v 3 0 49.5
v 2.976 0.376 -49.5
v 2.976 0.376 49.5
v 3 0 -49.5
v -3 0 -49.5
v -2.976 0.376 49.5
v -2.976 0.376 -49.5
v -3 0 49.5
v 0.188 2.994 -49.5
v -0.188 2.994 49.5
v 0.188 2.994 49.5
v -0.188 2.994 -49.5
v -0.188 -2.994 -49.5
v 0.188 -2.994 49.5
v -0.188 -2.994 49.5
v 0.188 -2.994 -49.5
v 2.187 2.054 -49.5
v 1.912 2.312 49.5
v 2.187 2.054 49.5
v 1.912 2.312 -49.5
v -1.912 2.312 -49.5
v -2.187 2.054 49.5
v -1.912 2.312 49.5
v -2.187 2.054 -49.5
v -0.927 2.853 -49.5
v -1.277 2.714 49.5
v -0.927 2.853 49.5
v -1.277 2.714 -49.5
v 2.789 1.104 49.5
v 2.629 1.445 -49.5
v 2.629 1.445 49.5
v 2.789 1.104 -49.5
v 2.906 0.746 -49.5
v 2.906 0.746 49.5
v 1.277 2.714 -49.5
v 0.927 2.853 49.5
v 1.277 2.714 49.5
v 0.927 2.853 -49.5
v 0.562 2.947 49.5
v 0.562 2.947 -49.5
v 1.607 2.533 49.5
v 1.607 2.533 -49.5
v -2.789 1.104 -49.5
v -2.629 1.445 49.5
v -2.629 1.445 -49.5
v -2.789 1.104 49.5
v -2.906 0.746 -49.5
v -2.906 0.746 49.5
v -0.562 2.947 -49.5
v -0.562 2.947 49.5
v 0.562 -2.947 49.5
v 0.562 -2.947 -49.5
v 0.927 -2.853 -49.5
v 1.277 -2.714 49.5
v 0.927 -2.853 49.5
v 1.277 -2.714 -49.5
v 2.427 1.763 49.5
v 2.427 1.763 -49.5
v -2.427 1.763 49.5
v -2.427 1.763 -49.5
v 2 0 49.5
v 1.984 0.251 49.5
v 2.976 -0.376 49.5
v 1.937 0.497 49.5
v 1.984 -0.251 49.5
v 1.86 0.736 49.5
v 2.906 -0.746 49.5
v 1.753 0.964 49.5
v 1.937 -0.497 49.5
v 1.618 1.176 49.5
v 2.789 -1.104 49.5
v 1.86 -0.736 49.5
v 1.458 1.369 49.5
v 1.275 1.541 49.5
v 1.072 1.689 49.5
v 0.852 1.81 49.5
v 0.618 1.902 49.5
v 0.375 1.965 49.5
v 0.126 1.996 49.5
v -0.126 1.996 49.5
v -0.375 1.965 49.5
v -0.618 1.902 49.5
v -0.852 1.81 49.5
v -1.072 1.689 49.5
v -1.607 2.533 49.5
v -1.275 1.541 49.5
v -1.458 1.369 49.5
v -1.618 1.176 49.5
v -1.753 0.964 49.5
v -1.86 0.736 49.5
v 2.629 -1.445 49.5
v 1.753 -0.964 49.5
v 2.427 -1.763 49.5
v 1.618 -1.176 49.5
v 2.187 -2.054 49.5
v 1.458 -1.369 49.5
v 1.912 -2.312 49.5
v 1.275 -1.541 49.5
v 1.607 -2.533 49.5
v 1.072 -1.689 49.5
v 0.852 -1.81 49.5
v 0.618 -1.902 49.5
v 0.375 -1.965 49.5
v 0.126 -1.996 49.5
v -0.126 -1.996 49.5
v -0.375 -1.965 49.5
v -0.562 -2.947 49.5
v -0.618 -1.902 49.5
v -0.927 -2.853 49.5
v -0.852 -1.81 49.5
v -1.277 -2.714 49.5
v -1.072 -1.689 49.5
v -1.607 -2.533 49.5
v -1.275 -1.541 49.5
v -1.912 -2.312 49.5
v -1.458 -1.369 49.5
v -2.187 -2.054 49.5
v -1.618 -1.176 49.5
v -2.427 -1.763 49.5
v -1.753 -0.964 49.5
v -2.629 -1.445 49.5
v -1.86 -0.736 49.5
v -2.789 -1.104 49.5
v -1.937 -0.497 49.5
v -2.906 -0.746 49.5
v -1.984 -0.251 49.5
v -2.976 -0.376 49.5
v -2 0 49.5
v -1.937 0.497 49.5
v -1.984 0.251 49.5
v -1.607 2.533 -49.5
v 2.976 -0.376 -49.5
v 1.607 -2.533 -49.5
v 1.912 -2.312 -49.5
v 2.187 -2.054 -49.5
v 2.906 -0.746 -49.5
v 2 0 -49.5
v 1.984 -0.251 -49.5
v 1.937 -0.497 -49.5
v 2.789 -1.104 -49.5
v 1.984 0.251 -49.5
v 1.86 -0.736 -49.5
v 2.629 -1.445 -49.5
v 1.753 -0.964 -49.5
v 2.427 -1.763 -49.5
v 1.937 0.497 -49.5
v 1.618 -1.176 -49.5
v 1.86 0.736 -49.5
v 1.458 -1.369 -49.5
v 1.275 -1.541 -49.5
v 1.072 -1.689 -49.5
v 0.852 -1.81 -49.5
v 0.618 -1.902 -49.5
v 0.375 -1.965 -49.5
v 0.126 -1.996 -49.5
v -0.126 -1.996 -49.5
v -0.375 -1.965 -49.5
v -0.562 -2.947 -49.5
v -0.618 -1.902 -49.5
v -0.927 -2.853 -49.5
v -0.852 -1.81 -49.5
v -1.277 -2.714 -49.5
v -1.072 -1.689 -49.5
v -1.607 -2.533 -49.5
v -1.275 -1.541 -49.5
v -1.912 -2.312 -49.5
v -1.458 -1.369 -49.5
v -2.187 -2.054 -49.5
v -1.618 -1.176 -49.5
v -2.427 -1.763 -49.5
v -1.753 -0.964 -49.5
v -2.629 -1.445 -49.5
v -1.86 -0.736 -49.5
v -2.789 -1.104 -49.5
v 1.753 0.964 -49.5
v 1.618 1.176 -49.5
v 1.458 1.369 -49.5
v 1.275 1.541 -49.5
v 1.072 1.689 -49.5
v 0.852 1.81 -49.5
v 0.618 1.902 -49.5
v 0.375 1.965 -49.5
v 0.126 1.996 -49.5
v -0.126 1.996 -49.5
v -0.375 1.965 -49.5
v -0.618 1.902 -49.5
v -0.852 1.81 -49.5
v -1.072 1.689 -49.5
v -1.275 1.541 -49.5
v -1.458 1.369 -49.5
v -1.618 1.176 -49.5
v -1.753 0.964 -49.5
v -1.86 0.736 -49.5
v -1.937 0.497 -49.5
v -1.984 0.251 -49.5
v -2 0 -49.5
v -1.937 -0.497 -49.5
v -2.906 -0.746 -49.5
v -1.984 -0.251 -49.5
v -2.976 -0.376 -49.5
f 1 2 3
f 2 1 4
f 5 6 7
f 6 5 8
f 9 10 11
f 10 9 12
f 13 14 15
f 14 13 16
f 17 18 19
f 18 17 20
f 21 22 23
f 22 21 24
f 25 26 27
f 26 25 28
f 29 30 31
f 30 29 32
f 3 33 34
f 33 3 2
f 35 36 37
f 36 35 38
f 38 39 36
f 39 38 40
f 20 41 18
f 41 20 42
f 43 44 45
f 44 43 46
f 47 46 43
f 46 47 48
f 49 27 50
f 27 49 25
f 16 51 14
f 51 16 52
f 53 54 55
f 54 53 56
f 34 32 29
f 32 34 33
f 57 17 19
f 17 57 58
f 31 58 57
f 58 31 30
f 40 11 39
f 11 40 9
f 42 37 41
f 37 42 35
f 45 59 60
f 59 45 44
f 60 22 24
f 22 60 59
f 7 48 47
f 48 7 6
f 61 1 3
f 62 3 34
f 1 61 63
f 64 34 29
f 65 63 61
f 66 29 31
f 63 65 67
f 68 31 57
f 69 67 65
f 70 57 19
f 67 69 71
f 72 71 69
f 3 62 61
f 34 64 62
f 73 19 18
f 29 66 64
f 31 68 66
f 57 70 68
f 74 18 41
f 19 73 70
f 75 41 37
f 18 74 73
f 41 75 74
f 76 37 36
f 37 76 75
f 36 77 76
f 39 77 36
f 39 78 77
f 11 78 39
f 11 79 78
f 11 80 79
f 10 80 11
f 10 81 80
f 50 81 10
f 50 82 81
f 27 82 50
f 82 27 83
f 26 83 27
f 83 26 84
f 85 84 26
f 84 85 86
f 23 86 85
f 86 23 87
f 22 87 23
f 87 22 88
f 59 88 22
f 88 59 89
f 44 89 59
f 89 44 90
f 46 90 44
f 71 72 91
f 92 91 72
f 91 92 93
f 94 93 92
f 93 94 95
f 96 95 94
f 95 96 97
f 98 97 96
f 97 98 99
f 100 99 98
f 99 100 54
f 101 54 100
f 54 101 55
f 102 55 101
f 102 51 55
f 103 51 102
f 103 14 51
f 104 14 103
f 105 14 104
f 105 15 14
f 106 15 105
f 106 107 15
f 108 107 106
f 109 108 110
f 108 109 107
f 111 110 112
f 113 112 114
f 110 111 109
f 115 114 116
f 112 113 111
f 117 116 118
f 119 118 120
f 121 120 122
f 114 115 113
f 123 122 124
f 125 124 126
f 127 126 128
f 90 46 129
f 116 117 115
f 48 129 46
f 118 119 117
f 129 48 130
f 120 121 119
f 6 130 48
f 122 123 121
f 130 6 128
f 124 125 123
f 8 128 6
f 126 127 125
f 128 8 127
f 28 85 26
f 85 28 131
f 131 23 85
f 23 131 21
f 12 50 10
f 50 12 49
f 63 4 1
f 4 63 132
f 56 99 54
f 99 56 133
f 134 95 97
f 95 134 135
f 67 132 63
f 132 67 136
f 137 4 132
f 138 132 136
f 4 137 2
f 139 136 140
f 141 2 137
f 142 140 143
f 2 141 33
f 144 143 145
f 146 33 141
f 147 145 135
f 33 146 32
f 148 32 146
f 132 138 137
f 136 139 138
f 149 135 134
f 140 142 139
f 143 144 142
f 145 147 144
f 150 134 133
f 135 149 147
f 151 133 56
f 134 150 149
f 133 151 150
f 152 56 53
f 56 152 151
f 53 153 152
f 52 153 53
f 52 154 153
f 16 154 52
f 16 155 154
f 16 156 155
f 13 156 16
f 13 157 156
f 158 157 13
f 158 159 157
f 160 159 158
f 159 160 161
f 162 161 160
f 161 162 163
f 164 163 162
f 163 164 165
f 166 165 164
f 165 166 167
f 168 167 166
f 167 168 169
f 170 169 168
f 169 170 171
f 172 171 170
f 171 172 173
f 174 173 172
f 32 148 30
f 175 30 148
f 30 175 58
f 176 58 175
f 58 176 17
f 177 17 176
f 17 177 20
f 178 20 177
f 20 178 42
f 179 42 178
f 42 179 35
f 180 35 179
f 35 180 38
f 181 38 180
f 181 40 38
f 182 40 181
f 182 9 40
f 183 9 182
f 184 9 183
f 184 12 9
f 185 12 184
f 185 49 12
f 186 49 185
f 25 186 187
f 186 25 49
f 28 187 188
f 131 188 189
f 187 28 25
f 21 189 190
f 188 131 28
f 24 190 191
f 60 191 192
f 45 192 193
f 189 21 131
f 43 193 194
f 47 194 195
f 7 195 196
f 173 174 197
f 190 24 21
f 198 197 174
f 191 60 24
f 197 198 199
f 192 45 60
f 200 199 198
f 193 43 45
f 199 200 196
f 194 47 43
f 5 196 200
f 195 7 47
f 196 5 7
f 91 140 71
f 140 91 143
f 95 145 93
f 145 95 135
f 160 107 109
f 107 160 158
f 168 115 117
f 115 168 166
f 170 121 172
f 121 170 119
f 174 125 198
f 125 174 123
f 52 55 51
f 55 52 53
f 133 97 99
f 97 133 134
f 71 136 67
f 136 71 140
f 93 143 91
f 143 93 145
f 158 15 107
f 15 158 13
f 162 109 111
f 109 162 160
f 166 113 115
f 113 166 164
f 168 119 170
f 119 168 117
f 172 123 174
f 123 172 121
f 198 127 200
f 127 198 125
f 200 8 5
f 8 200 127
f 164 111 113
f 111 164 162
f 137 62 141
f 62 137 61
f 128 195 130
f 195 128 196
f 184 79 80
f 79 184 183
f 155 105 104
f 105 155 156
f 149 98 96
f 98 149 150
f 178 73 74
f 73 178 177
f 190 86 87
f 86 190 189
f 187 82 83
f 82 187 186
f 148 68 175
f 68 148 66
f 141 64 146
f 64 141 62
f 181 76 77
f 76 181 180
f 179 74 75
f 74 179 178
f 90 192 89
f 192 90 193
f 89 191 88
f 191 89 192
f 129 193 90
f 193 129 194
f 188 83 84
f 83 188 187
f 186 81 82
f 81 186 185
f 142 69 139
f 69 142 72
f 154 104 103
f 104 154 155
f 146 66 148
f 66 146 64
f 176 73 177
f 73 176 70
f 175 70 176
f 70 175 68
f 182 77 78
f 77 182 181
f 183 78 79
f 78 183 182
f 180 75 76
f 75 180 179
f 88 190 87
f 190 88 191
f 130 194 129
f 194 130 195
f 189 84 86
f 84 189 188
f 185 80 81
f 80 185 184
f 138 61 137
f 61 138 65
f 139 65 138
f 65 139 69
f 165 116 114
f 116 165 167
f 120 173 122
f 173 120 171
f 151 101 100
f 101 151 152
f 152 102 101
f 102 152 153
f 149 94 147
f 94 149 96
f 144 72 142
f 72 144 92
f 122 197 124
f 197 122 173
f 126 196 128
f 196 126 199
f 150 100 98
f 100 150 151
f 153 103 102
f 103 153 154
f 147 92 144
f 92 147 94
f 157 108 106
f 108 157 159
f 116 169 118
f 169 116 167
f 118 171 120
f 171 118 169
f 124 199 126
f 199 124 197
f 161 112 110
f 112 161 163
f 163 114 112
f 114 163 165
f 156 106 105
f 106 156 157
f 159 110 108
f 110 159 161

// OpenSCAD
$fn = 50;


difference() {
	union() {
		translate(v = [0, 0, -49.5000000000]) {
			cylinder(h = 99, r = 3.0000000000);
		}
	}
	union() {
		translate(v = [0, 0, -100.0000000000]) {
			cylinder(h = 200, r = 2);
		}
	}
}
